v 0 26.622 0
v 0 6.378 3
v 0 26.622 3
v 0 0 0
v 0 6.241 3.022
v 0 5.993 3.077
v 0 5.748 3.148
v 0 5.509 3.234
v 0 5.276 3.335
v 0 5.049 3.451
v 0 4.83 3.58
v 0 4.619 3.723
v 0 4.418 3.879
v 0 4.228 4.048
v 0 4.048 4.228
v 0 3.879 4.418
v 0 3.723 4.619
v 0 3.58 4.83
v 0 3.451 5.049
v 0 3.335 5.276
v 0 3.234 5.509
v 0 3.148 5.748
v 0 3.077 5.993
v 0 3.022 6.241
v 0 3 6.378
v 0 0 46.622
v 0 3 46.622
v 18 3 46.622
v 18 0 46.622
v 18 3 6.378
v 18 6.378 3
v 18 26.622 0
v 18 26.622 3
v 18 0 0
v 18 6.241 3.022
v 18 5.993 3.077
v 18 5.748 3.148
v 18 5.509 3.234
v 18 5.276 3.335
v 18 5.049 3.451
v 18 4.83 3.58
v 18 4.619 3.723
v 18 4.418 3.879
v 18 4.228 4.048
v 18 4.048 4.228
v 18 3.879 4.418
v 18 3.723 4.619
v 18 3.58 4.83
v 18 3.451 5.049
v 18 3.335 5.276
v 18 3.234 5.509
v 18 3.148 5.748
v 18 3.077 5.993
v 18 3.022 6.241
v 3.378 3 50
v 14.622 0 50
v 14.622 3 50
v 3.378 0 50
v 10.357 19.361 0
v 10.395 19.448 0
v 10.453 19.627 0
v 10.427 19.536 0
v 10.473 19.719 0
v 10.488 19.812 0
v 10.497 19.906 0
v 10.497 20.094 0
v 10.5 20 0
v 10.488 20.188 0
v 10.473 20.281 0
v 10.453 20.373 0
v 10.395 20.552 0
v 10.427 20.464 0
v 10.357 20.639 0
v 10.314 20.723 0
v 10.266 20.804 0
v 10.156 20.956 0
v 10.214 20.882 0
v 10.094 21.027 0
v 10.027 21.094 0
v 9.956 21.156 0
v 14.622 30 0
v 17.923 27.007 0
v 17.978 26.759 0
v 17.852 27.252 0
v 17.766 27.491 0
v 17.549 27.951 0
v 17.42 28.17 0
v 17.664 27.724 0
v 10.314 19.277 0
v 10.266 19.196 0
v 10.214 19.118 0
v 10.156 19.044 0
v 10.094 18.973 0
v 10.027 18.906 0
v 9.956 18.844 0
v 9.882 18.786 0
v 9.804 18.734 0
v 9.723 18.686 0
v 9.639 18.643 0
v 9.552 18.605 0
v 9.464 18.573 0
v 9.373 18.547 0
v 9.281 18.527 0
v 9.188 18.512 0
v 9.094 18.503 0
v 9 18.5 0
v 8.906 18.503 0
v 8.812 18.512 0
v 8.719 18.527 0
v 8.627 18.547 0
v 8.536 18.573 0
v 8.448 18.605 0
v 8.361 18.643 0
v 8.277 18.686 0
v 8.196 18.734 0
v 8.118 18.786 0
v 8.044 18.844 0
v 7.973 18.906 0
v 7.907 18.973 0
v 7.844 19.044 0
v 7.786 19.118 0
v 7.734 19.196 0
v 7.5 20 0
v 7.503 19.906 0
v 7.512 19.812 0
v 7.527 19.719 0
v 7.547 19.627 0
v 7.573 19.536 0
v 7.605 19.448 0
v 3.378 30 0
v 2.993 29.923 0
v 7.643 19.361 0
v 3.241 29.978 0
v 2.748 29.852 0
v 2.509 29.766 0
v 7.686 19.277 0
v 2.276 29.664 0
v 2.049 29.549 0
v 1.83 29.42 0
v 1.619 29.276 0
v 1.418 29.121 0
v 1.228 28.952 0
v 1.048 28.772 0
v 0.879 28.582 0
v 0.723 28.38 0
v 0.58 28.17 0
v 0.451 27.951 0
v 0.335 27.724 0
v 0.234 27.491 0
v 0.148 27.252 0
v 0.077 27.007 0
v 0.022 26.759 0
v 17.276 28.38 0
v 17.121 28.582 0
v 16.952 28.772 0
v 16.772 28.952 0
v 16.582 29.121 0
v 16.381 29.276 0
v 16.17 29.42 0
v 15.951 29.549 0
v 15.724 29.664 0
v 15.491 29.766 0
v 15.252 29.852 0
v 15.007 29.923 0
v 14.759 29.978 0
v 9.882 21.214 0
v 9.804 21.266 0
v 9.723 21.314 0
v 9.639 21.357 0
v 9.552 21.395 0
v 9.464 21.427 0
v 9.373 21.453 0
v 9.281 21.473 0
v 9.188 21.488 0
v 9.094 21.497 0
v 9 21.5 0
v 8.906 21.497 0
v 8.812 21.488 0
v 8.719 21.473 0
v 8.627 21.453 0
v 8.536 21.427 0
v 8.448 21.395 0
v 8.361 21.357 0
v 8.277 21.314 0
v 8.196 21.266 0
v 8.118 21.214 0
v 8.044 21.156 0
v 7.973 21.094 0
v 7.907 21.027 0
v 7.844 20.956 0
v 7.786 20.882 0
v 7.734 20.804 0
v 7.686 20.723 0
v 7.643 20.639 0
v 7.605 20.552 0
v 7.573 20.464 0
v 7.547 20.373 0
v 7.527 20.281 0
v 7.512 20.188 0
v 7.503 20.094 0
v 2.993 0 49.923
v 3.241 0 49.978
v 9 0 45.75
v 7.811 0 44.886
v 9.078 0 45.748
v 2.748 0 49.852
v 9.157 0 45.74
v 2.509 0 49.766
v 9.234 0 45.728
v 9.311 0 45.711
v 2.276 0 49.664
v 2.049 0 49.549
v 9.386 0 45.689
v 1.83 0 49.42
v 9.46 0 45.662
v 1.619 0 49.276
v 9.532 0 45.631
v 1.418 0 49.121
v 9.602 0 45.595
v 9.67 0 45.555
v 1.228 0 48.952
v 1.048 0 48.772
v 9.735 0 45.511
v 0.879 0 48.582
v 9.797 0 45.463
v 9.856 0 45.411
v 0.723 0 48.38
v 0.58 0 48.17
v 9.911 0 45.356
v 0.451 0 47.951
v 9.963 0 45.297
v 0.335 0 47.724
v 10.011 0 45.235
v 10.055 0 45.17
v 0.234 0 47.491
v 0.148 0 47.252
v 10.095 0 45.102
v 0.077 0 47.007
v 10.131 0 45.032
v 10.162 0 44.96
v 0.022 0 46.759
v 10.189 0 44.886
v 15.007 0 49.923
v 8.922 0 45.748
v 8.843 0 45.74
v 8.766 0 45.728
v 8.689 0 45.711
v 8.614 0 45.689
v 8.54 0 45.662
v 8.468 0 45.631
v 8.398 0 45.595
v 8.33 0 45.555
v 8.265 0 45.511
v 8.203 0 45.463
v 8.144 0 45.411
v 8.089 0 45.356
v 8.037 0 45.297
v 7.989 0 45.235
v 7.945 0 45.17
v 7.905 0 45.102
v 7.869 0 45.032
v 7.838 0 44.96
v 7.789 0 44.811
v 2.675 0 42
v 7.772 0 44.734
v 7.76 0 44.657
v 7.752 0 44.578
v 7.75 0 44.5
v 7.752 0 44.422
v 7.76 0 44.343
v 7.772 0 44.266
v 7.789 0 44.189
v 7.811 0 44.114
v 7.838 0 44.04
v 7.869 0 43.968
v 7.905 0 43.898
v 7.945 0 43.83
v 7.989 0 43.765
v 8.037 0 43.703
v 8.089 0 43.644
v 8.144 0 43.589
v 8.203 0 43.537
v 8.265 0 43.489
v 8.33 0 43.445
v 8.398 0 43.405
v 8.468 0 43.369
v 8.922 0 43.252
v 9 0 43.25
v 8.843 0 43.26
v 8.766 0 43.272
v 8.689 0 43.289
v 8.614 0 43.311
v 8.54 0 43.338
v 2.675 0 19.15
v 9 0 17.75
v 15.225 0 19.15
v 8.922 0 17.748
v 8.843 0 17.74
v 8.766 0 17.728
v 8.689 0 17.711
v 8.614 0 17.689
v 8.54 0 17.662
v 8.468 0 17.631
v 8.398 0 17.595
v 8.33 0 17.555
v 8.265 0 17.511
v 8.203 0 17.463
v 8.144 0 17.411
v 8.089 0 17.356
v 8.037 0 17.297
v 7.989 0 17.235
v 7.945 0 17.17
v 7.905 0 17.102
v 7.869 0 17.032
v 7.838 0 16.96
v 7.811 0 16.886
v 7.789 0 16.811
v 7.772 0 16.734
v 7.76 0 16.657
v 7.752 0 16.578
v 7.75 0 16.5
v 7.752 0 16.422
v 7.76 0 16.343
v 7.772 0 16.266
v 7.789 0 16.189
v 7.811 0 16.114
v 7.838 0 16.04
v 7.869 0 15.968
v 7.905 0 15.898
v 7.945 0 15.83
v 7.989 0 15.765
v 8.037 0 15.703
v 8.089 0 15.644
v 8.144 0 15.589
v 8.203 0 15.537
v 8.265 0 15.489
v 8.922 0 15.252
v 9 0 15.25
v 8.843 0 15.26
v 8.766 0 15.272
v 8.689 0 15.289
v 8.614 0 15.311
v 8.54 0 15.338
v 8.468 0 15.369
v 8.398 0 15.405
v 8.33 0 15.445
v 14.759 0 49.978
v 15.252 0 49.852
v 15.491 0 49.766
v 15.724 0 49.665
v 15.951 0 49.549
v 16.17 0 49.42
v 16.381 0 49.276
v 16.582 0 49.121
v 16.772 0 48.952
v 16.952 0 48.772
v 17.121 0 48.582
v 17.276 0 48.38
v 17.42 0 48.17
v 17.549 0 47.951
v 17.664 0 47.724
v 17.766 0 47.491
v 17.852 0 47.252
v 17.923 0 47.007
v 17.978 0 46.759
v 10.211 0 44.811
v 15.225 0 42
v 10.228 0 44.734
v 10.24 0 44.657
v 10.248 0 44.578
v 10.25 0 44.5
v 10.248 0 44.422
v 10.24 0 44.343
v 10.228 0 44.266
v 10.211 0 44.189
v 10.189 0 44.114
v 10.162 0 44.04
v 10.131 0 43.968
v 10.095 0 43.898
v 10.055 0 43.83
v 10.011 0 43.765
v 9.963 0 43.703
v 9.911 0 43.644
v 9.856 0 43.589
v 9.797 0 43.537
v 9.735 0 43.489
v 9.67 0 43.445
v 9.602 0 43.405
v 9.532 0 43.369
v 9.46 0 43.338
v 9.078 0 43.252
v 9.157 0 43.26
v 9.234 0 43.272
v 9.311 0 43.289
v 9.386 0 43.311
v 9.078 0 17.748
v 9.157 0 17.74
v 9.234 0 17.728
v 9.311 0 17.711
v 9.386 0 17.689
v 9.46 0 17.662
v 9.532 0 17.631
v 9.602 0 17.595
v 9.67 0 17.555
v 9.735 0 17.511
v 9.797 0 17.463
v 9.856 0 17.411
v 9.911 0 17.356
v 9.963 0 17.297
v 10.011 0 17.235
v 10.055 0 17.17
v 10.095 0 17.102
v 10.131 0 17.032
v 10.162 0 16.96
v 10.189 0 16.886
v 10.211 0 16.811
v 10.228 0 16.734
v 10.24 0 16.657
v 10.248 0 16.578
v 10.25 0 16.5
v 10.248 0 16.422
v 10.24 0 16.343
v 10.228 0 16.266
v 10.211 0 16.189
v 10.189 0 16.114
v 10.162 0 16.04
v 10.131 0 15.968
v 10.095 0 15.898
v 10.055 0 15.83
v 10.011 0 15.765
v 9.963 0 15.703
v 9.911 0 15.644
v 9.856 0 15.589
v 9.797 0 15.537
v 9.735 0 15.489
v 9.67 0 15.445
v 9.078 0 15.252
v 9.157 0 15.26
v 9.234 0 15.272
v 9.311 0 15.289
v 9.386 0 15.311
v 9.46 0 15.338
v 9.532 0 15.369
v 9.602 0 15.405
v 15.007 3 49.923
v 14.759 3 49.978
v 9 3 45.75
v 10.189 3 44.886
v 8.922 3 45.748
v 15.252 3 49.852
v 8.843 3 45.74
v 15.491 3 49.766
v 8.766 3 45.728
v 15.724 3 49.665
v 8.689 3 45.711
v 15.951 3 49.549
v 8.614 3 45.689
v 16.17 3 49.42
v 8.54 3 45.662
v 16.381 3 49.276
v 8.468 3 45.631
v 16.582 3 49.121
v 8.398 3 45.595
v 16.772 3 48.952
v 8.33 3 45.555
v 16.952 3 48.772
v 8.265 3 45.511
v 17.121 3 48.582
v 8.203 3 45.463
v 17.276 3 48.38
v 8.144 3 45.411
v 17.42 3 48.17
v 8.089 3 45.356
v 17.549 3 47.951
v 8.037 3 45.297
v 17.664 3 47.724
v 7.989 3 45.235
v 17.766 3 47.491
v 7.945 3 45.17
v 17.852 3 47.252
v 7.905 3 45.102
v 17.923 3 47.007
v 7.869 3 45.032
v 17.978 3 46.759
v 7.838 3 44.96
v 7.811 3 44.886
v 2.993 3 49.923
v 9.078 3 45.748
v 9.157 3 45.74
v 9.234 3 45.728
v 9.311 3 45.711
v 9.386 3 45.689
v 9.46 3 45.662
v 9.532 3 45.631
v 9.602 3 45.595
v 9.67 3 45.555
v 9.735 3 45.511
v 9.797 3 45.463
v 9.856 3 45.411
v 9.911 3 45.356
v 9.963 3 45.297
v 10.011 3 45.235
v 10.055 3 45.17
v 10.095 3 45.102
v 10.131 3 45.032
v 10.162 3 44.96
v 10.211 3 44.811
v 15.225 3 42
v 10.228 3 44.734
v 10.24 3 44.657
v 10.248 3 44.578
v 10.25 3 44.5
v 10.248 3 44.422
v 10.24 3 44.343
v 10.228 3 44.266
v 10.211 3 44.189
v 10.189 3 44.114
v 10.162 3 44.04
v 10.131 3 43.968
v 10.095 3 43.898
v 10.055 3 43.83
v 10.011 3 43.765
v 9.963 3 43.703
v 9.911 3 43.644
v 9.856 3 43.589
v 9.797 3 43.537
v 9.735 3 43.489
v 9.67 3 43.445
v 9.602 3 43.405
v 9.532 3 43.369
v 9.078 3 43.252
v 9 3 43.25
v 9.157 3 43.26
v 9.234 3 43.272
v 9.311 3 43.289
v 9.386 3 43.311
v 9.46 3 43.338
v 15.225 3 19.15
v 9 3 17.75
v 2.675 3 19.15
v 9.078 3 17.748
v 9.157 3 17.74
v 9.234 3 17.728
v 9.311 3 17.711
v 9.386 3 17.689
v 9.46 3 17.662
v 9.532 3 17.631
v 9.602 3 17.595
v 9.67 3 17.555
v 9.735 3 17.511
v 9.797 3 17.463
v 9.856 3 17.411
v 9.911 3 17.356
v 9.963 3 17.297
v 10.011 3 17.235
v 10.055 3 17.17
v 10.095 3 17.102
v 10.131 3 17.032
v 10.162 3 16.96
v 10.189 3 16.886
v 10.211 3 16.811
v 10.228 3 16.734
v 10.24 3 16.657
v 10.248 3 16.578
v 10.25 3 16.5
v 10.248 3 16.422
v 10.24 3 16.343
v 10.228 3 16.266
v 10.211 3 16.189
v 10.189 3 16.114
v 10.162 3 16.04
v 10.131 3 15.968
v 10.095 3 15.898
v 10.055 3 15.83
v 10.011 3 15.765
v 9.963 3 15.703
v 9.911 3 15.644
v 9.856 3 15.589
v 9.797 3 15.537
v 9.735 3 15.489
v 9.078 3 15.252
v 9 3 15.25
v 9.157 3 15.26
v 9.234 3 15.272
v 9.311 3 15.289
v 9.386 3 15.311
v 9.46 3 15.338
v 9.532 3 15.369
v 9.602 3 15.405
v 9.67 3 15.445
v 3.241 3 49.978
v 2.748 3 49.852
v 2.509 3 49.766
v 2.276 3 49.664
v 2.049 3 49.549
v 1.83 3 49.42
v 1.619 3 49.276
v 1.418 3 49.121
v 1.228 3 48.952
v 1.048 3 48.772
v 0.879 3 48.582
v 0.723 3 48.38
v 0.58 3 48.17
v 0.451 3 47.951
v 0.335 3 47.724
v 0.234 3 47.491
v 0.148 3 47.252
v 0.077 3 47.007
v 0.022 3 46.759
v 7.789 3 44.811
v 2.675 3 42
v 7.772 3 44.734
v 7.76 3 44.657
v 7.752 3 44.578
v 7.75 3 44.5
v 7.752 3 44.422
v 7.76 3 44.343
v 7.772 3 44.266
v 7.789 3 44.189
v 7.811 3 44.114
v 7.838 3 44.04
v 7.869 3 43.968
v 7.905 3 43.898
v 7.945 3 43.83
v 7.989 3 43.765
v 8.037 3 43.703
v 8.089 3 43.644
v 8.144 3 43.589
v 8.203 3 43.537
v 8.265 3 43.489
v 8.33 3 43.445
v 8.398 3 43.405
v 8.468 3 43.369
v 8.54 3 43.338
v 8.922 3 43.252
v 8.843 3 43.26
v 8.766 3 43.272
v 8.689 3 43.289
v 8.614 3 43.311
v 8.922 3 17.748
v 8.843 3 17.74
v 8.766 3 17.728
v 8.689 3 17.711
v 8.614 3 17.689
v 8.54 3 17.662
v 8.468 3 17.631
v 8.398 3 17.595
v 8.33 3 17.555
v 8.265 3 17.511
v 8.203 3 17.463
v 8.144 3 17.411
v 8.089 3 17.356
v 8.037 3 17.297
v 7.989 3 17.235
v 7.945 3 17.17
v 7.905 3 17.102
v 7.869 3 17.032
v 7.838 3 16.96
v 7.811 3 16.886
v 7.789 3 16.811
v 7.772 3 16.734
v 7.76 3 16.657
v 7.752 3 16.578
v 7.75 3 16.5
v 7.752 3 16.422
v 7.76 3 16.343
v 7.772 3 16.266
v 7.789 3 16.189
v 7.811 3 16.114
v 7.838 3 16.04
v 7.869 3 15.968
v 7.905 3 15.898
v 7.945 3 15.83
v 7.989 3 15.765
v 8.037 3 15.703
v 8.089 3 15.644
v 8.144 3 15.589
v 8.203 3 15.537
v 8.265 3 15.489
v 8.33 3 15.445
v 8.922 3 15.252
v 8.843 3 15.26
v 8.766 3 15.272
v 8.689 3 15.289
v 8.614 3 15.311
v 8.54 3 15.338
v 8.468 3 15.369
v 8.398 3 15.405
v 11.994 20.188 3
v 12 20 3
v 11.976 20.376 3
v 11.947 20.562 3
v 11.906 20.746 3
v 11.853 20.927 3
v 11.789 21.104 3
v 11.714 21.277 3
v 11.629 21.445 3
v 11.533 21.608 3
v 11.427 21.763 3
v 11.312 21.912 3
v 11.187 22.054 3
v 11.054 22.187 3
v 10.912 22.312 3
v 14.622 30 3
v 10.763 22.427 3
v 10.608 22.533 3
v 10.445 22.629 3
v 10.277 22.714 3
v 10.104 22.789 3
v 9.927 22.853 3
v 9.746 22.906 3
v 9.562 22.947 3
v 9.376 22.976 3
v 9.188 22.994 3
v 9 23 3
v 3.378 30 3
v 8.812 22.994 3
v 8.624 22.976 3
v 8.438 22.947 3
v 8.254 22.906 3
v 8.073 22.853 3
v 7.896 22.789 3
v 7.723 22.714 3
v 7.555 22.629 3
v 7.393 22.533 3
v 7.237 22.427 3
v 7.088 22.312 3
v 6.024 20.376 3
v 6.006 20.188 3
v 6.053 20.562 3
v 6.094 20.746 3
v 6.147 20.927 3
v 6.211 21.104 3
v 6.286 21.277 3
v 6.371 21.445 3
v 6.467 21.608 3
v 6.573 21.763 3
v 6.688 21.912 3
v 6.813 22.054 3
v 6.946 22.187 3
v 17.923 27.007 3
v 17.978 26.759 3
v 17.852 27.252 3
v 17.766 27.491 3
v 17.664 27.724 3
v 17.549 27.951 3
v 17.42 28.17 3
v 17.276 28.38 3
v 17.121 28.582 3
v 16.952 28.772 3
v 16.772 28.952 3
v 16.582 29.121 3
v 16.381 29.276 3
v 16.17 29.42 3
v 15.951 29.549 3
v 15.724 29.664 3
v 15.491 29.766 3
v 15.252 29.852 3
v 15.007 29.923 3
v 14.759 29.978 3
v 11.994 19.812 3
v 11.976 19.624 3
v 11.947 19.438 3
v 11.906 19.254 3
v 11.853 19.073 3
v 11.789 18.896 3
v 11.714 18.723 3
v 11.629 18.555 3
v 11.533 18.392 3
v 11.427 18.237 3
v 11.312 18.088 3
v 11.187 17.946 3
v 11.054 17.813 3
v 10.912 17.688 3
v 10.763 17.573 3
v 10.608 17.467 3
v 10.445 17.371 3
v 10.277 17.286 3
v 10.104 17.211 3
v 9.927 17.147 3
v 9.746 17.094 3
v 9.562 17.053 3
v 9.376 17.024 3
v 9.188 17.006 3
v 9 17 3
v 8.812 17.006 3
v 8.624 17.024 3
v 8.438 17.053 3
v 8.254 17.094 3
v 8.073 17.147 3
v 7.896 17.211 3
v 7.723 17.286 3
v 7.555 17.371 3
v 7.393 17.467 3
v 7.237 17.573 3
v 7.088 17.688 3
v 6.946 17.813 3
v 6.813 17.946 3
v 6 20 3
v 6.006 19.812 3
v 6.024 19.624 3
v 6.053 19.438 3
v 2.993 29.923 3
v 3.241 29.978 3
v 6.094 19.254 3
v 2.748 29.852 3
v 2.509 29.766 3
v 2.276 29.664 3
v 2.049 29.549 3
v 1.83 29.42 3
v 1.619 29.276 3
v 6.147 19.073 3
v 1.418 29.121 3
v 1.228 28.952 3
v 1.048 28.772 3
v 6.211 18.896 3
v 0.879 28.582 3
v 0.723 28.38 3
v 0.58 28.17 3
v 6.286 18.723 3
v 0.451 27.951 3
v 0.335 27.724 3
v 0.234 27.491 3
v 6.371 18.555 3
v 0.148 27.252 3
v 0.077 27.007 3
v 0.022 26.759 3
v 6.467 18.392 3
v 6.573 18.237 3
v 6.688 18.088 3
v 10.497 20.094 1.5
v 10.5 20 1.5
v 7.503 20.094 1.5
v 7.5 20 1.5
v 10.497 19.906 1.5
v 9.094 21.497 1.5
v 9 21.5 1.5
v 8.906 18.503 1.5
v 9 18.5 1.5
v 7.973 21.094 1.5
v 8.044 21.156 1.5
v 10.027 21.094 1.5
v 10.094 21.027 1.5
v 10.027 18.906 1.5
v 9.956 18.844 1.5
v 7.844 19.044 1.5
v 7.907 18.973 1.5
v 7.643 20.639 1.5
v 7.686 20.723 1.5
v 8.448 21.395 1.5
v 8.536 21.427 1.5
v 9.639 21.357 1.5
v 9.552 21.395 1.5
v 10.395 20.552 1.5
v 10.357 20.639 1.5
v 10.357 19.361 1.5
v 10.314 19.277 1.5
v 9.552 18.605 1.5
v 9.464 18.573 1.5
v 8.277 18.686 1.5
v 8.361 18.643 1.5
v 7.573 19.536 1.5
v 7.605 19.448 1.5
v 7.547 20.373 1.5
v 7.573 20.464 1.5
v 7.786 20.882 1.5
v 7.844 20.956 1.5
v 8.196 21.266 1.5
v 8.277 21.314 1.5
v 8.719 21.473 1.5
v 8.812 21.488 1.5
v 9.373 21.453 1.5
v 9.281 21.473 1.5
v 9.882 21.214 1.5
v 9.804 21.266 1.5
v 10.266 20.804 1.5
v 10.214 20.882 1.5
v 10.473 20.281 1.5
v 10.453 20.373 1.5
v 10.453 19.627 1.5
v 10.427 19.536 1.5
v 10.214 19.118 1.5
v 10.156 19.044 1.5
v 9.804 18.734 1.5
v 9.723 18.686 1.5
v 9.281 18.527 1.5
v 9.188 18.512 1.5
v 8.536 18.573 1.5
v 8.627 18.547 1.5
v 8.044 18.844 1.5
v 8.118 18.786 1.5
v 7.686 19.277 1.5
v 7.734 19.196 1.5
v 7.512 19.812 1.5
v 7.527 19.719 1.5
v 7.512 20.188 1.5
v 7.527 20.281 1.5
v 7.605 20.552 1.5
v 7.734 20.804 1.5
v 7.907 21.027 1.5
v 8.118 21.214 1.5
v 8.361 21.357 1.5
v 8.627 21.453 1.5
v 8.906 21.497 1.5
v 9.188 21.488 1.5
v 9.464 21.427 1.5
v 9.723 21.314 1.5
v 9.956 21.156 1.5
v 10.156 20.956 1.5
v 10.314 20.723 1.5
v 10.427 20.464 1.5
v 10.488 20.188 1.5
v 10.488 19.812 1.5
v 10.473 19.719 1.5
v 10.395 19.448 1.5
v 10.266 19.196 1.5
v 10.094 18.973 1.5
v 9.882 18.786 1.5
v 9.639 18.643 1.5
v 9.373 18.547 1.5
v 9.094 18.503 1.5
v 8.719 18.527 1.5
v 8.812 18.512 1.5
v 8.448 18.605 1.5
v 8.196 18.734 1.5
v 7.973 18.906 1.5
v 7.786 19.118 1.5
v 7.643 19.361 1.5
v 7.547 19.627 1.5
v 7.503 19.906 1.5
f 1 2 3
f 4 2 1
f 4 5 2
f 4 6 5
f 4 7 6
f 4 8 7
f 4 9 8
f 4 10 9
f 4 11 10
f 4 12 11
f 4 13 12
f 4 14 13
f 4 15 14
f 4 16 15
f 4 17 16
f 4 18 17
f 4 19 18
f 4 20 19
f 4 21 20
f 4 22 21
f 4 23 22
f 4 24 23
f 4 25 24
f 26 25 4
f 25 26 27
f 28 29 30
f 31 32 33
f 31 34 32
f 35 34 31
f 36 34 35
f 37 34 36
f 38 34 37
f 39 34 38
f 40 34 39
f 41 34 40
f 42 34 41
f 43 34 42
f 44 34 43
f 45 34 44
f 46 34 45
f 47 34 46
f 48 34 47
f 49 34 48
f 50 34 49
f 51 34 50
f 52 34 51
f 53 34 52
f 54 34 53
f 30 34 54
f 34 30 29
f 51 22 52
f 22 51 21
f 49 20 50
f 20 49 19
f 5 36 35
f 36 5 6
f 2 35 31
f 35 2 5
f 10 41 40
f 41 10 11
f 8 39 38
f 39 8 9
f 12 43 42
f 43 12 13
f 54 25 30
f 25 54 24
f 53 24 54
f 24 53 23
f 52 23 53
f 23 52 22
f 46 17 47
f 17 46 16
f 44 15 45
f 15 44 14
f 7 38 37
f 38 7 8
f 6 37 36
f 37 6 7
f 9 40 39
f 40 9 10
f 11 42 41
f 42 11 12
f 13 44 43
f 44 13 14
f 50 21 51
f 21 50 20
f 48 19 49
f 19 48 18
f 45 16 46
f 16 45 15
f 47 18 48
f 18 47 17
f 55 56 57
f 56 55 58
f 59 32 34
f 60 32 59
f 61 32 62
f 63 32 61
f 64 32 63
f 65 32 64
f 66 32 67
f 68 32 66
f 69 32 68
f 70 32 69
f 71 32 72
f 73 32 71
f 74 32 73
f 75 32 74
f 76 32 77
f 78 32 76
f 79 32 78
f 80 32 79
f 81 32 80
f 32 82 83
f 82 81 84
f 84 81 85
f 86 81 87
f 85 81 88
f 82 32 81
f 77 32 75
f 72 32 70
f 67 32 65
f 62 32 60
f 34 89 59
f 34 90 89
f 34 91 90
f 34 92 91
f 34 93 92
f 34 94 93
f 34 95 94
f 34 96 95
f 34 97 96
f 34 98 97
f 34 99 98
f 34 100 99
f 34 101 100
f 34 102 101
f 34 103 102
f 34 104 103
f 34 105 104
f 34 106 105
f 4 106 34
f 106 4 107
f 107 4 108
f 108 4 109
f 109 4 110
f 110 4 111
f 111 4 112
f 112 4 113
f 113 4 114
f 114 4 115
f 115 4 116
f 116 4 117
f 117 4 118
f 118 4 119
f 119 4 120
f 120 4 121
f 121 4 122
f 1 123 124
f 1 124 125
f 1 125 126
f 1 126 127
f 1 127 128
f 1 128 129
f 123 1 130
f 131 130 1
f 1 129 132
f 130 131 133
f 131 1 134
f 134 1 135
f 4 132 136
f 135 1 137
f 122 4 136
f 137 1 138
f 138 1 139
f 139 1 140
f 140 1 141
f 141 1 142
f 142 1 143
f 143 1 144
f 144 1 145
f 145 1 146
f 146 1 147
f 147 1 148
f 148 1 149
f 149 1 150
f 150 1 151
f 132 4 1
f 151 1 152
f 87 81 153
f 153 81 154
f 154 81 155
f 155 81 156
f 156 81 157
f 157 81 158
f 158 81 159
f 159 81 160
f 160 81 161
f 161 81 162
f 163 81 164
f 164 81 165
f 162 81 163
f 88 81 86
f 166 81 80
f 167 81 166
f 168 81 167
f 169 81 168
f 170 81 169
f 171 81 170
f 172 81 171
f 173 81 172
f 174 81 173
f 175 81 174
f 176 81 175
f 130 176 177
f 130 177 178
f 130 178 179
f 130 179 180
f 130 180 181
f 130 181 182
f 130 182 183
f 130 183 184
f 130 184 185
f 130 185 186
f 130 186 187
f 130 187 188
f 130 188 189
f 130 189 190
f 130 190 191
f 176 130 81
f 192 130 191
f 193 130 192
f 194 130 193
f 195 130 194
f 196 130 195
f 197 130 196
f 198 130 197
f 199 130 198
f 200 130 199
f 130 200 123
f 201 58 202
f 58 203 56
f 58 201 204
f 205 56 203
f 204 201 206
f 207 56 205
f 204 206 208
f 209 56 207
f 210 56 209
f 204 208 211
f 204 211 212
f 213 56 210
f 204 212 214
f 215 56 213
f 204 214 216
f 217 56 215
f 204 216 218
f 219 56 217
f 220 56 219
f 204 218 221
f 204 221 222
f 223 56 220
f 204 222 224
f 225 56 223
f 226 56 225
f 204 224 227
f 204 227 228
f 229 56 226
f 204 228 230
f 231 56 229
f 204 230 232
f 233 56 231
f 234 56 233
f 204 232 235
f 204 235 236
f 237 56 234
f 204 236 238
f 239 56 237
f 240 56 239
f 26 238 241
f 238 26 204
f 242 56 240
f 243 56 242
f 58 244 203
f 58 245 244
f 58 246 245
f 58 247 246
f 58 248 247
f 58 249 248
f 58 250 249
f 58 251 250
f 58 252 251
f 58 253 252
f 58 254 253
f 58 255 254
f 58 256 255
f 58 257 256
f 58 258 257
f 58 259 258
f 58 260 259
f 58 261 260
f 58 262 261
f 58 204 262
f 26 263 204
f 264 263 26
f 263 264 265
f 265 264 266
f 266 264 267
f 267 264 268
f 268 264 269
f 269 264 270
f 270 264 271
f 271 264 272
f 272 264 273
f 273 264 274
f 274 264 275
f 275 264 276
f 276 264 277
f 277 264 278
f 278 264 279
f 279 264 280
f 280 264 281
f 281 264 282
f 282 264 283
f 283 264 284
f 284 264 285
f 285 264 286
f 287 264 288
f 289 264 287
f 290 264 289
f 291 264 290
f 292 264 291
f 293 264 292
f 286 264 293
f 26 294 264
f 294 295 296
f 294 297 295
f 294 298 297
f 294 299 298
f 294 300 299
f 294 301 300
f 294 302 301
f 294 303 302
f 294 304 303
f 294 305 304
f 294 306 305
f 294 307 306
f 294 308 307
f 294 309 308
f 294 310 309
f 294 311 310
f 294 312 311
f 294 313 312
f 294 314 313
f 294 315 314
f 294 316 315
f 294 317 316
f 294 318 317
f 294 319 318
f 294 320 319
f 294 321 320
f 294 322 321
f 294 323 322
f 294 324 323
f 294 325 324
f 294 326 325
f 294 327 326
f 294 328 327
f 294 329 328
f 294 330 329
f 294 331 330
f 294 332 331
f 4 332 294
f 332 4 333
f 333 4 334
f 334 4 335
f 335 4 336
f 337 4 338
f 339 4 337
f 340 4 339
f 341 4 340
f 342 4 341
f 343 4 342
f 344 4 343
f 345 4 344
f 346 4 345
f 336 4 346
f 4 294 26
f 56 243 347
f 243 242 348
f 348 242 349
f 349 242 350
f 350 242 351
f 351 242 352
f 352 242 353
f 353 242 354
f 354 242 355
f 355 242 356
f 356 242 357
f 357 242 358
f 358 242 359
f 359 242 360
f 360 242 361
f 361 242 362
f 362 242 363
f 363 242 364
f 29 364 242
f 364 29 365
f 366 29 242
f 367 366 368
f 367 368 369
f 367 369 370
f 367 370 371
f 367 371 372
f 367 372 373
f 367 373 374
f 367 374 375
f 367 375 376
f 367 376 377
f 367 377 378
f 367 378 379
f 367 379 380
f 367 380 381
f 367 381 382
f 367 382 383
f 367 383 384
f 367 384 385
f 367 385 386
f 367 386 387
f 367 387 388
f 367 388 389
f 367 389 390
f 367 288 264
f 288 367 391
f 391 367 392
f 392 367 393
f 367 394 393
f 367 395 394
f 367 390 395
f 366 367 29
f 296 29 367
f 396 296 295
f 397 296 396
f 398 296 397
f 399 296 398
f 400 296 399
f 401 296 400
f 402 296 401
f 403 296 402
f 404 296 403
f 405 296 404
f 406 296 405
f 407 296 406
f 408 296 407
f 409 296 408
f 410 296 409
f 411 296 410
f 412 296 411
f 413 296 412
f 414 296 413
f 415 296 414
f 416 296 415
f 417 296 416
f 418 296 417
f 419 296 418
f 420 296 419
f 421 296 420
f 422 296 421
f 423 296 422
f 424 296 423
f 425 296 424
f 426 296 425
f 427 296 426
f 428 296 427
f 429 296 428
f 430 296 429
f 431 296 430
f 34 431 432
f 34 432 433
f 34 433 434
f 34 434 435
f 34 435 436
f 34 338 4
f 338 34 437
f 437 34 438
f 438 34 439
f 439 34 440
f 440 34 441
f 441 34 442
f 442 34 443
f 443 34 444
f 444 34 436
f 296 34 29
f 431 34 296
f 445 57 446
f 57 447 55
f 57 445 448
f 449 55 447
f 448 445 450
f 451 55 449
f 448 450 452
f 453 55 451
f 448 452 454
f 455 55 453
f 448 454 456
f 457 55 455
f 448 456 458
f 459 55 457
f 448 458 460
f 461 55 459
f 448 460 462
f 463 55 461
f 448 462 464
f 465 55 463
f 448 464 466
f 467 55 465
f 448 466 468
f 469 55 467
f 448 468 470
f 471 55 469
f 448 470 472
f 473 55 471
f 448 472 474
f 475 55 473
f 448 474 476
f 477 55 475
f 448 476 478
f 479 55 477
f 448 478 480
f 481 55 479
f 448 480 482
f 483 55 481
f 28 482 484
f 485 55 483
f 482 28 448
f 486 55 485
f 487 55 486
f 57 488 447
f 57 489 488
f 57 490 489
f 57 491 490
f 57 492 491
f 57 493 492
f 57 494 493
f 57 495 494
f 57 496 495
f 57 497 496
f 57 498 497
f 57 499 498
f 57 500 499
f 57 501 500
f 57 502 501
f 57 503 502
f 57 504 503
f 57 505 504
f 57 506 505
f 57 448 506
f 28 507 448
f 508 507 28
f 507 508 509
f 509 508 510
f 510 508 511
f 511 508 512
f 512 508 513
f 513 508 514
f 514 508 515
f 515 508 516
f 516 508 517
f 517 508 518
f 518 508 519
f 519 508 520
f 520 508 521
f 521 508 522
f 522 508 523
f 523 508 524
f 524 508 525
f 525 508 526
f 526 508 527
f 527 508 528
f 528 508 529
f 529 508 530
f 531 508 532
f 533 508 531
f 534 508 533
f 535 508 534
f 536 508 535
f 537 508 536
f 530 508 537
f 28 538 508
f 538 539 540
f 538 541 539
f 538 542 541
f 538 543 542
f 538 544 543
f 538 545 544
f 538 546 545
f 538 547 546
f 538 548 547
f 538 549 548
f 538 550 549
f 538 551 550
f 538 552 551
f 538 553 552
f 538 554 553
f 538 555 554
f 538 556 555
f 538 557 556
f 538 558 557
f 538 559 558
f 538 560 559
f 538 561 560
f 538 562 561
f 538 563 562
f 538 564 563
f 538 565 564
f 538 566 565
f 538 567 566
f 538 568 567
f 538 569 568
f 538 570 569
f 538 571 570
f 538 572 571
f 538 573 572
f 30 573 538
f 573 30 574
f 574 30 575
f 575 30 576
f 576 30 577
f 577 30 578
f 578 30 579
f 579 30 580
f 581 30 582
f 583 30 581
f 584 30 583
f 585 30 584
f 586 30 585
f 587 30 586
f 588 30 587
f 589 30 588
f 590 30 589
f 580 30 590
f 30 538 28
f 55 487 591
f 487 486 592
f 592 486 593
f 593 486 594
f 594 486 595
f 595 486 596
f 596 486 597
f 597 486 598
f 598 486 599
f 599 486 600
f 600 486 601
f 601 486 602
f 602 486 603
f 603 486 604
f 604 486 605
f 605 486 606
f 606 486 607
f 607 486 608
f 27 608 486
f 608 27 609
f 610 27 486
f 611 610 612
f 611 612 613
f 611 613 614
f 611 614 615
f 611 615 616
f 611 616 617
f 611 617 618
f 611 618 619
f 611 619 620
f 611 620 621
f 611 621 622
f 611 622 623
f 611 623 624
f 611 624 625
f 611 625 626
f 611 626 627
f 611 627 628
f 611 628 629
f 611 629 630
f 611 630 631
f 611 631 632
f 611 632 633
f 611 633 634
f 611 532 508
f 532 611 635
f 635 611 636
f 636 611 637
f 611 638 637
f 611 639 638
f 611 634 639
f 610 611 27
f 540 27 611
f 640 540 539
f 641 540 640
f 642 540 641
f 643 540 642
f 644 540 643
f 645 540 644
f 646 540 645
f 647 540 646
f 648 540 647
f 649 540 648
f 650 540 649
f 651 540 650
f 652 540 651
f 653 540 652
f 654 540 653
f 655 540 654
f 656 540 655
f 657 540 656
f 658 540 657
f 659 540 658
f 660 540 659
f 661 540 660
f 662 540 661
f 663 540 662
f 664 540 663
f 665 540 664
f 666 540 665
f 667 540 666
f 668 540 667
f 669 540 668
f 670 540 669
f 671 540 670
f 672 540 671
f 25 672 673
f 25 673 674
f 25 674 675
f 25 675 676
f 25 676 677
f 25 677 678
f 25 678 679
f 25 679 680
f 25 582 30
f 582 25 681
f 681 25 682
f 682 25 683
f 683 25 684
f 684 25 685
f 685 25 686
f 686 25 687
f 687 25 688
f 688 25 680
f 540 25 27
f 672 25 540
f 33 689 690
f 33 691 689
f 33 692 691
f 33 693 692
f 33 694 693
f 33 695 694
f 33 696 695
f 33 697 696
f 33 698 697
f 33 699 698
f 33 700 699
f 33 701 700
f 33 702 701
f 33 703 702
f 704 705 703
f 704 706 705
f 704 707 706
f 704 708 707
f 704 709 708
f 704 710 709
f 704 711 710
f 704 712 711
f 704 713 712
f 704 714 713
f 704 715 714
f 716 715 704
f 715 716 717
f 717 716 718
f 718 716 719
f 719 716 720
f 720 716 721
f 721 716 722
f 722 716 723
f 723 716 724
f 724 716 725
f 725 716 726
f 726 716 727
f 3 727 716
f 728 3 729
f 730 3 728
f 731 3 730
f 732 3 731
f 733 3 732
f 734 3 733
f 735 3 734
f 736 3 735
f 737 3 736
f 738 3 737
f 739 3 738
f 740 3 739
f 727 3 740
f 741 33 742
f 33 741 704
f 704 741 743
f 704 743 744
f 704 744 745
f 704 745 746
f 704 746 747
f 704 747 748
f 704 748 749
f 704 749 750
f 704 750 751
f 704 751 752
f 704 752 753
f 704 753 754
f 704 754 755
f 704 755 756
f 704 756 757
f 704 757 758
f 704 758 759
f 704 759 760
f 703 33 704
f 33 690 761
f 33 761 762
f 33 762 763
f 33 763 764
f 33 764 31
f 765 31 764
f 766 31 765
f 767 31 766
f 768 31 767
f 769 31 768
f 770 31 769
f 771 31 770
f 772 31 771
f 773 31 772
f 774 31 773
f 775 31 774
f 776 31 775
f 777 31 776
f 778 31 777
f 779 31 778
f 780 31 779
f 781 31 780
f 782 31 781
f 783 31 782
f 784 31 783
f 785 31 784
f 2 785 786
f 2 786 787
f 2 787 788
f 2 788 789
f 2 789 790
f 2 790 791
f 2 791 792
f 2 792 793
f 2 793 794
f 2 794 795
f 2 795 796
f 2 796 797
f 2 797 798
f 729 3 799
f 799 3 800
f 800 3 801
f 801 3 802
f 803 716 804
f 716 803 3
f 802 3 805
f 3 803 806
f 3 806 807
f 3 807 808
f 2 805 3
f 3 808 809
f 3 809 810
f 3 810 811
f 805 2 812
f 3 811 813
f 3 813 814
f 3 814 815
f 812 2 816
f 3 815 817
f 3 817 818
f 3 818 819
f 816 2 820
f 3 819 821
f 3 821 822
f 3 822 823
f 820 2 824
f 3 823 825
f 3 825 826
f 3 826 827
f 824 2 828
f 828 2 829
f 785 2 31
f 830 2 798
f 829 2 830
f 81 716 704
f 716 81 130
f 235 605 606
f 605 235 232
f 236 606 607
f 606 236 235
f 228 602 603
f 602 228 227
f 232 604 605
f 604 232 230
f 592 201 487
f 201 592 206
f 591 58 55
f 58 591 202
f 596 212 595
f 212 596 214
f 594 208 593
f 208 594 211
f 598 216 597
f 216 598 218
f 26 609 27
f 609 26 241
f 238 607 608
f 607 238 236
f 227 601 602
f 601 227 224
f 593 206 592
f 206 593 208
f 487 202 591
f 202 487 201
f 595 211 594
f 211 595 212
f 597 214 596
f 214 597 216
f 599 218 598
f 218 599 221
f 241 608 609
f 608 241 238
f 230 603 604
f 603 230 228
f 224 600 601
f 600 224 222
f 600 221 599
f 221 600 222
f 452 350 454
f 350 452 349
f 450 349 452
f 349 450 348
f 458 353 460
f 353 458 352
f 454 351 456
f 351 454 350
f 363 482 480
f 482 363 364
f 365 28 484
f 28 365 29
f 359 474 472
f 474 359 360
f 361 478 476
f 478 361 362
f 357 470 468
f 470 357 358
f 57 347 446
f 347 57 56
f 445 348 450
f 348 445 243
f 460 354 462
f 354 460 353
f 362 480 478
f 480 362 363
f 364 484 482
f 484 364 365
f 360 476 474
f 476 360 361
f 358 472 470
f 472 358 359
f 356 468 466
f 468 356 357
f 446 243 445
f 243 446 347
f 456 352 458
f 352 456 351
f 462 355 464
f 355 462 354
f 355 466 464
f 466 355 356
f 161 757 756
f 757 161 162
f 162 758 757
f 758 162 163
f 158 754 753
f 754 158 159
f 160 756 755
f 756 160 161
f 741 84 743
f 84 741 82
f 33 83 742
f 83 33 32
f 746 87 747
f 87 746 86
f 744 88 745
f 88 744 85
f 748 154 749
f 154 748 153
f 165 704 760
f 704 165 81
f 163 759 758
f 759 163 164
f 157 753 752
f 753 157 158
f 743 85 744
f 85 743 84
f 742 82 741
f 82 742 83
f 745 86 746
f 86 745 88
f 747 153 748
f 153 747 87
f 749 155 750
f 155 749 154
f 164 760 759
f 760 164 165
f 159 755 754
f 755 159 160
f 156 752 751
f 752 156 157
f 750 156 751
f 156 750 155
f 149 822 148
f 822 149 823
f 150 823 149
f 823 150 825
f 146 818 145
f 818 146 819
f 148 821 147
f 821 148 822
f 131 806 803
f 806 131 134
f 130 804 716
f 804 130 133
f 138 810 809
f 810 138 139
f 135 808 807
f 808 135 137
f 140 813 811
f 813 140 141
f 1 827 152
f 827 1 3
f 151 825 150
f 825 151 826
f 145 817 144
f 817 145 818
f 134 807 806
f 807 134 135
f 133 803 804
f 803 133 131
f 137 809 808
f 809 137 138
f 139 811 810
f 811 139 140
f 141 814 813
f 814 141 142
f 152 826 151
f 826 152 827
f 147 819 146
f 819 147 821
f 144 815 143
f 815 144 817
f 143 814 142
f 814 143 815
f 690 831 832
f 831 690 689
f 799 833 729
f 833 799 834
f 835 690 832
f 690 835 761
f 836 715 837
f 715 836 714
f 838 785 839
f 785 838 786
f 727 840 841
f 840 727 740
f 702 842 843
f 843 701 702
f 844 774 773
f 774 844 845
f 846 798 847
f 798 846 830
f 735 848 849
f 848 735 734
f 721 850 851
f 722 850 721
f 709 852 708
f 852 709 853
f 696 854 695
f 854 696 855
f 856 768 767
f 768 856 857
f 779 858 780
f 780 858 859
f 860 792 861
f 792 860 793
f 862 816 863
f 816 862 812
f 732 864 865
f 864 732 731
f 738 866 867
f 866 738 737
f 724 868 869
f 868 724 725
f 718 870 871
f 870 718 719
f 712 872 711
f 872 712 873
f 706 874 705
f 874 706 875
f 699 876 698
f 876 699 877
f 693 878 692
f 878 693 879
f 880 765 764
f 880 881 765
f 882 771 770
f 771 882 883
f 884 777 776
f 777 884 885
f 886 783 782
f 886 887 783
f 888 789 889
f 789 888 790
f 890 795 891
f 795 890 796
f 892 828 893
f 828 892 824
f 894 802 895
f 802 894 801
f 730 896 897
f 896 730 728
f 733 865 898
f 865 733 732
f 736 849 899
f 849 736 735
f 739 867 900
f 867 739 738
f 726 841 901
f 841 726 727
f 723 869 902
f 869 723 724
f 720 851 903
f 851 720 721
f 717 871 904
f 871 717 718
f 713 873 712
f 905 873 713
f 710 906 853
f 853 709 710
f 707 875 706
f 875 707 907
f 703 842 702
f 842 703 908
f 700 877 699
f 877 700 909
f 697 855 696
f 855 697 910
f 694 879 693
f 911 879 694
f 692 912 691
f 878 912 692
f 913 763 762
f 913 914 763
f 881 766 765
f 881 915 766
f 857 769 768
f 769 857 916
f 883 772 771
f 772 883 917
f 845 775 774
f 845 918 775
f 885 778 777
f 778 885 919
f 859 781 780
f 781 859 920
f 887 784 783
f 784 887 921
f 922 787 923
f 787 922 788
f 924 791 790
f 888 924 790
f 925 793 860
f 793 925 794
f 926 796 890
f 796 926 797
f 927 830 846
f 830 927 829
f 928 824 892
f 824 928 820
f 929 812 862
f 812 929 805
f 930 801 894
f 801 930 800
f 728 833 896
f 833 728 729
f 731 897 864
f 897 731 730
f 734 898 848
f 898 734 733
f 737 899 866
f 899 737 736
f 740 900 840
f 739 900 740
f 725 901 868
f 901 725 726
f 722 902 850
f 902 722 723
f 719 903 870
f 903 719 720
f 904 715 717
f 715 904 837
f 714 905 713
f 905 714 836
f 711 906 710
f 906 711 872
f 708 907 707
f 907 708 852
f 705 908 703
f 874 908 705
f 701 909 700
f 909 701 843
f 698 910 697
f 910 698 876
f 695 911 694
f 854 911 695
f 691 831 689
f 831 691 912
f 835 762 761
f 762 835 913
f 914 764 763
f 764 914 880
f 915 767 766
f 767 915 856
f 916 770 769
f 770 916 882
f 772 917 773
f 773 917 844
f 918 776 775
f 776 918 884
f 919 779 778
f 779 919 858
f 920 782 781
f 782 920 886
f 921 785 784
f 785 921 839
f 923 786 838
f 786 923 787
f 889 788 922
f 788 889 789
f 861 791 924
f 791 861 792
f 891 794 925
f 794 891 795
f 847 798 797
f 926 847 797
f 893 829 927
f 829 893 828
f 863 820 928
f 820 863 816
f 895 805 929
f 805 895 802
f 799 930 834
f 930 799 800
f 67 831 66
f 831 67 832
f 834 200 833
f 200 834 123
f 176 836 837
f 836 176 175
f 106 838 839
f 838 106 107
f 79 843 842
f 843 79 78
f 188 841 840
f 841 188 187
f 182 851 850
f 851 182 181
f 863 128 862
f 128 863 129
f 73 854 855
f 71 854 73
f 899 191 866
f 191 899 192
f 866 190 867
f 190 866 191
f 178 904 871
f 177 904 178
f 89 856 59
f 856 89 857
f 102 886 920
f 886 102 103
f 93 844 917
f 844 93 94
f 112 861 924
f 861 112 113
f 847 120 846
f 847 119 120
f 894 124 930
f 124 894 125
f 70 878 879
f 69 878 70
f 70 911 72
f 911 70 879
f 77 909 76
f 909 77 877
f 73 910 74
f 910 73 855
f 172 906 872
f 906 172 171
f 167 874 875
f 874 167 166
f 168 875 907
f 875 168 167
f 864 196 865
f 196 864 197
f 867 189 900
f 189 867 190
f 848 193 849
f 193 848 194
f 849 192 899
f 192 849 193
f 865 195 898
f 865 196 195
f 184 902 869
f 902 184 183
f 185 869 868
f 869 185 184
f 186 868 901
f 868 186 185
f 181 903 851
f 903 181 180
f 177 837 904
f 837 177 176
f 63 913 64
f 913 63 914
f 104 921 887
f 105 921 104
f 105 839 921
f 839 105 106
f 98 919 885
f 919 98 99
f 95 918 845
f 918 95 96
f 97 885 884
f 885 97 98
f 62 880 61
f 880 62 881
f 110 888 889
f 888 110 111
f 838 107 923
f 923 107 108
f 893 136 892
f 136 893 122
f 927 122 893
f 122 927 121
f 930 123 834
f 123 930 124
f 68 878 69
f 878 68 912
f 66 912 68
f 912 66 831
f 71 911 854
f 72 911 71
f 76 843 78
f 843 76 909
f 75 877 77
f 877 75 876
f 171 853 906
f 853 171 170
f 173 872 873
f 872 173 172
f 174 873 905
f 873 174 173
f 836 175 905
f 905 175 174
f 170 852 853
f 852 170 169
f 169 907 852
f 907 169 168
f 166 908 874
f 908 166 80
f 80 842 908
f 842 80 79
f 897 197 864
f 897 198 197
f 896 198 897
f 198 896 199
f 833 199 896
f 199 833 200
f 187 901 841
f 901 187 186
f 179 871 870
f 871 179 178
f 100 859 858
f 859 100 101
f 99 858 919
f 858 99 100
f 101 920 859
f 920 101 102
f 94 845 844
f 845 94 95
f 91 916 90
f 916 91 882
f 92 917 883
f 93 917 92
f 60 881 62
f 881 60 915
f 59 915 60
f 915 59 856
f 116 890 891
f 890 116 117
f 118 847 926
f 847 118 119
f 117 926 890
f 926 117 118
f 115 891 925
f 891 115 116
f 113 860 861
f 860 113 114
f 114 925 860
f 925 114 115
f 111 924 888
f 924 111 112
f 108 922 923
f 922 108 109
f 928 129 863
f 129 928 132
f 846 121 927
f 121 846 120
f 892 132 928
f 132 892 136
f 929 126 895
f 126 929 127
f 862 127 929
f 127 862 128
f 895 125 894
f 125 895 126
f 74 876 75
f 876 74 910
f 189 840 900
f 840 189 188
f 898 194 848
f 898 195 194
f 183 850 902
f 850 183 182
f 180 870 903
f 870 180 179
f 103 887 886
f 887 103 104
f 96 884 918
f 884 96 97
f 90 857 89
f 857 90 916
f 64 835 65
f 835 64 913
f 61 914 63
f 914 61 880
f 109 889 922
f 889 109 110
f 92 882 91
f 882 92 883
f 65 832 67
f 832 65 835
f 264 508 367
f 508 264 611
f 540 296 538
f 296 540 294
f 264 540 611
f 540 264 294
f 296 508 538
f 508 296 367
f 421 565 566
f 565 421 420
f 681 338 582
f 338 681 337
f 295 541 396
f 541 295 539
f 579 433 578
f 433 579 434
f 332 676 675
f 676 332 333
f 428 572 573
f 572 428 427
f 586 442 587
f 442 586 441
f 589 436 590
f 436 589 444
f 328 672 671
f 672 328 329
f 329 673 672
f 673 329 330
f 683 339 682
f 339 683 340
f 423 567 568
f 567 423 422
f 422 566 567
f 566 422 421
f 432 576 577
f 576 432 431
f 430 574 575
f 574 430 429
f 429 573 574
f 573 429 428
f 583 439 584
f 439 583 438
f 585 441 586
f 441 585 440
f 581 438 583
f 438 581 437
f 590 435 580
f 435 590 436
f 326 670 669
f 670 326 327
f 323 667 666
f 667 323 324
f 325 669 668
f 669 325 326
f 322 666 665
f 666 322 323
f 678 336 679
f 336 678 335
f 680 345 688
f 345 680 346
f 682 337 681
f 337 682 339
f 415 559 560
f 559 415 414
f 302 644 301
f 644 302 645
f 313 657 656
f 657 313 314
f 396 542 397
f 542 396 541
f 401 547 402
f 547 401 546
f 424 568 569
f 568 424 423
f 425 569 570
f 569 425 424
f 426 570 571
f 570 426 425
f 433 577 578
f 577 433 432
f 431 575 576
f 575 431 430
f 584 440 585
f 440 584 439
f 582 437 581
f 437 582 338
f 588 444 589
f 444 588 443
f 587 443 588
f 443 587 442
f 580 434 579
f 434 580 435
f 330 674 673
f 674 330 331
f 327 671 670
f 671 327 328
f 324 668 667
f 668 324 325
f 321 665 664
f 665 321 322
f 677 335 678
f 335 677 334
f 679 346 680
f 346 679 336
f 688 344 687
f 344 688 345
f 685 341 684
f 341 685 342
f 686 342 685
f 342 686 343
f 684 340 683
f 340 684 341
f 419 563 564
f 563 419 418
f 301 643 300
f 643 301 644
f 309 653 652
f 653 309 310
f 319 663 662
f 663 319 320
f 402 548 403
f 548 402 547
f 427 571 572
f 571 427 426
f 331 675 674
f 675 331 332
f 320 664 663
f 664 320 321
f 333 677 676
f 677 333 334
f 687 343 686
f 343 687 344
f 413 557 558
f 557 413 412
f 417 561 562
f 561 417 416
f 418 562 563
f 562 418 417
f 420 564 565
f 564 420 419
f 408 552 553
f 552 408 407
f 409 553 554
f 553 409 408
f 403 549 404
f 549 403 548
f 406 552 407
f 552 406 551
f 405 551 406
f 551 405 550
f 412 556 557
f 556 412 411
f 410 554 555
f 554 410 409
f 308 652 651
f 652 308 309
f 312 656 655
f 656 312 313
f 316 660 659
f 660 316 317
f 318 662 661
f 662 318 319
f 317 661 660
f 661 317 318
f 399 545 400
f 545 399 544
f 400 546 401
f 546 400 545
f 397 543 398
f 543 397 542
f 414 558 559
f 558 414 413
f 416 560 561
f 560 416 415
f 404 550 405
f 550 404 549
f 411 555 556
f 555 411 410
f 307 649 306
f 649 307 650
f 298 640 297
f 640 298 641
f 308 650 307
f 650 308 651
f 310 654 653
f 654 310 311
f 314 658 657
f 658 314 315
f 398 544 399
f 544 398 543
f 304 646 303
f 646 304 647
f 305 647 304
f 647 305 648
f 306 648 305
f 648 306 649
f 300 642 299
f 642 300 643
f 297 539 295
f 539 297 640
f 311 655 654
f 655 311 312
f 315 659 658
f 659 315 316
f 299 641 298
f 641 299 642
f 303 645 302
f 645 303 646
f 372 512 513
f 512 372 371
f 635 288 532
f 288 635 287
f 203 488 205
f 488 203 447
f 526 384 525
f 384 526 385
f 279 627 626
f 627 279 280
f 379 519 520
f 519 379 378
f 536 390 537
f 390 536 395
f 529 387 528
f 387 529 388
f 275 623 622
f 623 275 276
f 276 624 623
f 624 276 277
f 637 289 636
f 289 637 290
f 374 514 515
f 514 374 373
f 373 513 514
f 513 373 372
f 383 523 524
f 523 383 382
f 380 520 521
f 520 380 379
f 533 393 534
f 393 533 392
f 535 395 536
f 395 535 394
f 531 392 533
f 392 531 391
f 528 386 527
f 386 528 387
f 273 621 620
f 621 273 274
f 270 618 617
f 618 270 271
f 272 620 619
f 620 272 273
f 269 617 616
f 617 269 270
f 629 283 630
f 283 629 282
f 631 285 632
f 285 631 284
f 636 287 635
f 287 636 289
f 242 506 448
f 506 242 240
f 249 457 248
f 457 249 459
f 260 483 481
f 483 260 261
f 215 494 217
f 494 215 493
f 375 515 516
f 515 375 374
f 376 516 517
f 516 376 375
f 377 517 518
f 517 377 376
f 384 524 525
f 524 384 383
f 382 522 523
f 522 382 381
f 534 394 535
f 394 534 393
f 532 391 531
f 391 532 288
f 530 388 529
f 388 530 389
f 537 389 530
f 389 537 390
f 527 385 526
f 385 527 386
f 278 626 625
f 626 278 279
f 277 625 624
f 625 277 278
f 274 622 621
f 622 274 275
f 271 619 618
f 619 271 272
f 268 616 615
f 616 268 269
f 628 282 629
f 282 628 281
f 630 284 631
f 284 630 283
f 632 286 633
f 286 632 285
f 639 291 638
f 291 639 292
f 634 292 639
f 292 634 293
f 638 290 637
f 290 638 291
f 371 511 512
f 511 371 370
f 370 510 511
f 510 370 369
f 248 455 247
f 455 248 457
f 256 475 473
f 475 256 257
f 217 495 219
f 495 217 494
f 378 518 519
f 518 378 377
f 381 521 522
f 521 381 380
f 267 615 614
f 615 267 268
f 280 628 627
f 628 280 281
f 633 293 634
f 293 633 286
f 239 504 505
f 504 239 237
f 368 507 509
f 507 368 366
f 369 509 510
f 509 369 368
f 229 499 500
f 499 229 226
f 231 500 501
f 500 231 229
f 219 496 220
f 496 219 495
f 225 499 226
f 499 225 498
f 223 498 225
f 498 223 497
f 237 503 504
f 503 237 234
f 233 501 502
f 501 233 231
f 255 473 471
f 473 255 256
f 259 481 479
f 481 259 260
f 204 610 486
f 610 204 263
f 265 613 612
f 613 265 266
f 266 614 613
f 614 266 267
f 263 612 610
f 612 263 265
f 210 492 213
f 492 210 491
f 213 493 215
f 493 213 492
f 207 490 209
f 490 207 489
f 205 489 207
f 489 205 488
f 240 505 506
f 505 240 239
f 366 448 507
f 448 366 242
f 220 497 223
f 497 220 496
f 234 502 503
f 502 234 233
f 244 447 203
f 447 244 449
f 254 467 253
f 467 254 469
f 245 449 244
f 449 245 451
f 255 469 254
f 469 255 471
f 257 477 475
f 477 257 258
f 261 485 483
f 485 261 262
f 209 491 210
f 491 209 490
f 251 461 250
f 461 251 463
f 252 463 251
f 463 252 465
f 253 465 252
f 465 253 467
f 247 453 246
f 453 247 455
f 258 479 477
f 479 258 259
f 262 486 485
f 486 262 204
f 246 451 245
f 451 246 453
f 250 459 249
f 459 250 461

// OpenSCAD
module servoStand() {

offset = 0.35;
    
    difference() {
		union() {
			cube([18,3,50]);
			cube([18,30,3]);
			translate([0,7,7])
				rotate([-90,0,0])
					fillet(8.1,18); 
		}
		//cable slot
		//translate([7,-2,40.4])
		//	cube([4,10,2]);
		
		//servo hole
        translate([2.5+(offset/2),10,42])
            rotate([90,90,0])
                cube([22.5+offset,12.2+offset,22.5+offset]);
		//Round top corners
		translate([4,-5,46])
				rotate([90,0,90])
					fillet(8.1,10);	
		
		translate([14,-5,46])
				rotate([180,0,90])
					fillet(8.1,10);

		//Drill holes
		translate([9,-5,16.5])
			rotate([-90,0,0])
				cylinder(d=2.5,h=10,$fn=100);
		translate([9,-5,44.5])
			rotate([-90,0,0])
				cylinder(d=2.5,h=10,$fn=100);

		//Round back corners
		translate([14,26,5])
				rotate([90,90,0])
					fillet(8.1,10);	
					
		translate([4,26,5])
				rotate([0,90,0])
					fillet(8.1,10);	
		
		//Mounting hole
		translate([9,20,0])
			countersink(3);
    }
}

module fillet(filletsize,width)
{
    difference() {
    translate([0,-filletsize/2,-filletsize/2])
        cube([width,filletsize,filletsize]);
    translate([-1,0,0])
        rotate([0,90,0])
            cylinder(width+2,d=filletsize,$fn=100);
    translate([-1,-filletsize,-filletsize/2])
        cube([width+2,filletsize,filletsize]);
    translate([-1,-filletsize/2,0])
        cube([width+2,filletsize,filletsize]);     
    }
}

module countersink(drillsize)
    union() {
        cylinder(drillsize*3,0,drillsize*3,$fn=100);
        translate([0,0,-3])
        cylinder(10,d=drillsize,$fn=100);
    }

servoStand();
